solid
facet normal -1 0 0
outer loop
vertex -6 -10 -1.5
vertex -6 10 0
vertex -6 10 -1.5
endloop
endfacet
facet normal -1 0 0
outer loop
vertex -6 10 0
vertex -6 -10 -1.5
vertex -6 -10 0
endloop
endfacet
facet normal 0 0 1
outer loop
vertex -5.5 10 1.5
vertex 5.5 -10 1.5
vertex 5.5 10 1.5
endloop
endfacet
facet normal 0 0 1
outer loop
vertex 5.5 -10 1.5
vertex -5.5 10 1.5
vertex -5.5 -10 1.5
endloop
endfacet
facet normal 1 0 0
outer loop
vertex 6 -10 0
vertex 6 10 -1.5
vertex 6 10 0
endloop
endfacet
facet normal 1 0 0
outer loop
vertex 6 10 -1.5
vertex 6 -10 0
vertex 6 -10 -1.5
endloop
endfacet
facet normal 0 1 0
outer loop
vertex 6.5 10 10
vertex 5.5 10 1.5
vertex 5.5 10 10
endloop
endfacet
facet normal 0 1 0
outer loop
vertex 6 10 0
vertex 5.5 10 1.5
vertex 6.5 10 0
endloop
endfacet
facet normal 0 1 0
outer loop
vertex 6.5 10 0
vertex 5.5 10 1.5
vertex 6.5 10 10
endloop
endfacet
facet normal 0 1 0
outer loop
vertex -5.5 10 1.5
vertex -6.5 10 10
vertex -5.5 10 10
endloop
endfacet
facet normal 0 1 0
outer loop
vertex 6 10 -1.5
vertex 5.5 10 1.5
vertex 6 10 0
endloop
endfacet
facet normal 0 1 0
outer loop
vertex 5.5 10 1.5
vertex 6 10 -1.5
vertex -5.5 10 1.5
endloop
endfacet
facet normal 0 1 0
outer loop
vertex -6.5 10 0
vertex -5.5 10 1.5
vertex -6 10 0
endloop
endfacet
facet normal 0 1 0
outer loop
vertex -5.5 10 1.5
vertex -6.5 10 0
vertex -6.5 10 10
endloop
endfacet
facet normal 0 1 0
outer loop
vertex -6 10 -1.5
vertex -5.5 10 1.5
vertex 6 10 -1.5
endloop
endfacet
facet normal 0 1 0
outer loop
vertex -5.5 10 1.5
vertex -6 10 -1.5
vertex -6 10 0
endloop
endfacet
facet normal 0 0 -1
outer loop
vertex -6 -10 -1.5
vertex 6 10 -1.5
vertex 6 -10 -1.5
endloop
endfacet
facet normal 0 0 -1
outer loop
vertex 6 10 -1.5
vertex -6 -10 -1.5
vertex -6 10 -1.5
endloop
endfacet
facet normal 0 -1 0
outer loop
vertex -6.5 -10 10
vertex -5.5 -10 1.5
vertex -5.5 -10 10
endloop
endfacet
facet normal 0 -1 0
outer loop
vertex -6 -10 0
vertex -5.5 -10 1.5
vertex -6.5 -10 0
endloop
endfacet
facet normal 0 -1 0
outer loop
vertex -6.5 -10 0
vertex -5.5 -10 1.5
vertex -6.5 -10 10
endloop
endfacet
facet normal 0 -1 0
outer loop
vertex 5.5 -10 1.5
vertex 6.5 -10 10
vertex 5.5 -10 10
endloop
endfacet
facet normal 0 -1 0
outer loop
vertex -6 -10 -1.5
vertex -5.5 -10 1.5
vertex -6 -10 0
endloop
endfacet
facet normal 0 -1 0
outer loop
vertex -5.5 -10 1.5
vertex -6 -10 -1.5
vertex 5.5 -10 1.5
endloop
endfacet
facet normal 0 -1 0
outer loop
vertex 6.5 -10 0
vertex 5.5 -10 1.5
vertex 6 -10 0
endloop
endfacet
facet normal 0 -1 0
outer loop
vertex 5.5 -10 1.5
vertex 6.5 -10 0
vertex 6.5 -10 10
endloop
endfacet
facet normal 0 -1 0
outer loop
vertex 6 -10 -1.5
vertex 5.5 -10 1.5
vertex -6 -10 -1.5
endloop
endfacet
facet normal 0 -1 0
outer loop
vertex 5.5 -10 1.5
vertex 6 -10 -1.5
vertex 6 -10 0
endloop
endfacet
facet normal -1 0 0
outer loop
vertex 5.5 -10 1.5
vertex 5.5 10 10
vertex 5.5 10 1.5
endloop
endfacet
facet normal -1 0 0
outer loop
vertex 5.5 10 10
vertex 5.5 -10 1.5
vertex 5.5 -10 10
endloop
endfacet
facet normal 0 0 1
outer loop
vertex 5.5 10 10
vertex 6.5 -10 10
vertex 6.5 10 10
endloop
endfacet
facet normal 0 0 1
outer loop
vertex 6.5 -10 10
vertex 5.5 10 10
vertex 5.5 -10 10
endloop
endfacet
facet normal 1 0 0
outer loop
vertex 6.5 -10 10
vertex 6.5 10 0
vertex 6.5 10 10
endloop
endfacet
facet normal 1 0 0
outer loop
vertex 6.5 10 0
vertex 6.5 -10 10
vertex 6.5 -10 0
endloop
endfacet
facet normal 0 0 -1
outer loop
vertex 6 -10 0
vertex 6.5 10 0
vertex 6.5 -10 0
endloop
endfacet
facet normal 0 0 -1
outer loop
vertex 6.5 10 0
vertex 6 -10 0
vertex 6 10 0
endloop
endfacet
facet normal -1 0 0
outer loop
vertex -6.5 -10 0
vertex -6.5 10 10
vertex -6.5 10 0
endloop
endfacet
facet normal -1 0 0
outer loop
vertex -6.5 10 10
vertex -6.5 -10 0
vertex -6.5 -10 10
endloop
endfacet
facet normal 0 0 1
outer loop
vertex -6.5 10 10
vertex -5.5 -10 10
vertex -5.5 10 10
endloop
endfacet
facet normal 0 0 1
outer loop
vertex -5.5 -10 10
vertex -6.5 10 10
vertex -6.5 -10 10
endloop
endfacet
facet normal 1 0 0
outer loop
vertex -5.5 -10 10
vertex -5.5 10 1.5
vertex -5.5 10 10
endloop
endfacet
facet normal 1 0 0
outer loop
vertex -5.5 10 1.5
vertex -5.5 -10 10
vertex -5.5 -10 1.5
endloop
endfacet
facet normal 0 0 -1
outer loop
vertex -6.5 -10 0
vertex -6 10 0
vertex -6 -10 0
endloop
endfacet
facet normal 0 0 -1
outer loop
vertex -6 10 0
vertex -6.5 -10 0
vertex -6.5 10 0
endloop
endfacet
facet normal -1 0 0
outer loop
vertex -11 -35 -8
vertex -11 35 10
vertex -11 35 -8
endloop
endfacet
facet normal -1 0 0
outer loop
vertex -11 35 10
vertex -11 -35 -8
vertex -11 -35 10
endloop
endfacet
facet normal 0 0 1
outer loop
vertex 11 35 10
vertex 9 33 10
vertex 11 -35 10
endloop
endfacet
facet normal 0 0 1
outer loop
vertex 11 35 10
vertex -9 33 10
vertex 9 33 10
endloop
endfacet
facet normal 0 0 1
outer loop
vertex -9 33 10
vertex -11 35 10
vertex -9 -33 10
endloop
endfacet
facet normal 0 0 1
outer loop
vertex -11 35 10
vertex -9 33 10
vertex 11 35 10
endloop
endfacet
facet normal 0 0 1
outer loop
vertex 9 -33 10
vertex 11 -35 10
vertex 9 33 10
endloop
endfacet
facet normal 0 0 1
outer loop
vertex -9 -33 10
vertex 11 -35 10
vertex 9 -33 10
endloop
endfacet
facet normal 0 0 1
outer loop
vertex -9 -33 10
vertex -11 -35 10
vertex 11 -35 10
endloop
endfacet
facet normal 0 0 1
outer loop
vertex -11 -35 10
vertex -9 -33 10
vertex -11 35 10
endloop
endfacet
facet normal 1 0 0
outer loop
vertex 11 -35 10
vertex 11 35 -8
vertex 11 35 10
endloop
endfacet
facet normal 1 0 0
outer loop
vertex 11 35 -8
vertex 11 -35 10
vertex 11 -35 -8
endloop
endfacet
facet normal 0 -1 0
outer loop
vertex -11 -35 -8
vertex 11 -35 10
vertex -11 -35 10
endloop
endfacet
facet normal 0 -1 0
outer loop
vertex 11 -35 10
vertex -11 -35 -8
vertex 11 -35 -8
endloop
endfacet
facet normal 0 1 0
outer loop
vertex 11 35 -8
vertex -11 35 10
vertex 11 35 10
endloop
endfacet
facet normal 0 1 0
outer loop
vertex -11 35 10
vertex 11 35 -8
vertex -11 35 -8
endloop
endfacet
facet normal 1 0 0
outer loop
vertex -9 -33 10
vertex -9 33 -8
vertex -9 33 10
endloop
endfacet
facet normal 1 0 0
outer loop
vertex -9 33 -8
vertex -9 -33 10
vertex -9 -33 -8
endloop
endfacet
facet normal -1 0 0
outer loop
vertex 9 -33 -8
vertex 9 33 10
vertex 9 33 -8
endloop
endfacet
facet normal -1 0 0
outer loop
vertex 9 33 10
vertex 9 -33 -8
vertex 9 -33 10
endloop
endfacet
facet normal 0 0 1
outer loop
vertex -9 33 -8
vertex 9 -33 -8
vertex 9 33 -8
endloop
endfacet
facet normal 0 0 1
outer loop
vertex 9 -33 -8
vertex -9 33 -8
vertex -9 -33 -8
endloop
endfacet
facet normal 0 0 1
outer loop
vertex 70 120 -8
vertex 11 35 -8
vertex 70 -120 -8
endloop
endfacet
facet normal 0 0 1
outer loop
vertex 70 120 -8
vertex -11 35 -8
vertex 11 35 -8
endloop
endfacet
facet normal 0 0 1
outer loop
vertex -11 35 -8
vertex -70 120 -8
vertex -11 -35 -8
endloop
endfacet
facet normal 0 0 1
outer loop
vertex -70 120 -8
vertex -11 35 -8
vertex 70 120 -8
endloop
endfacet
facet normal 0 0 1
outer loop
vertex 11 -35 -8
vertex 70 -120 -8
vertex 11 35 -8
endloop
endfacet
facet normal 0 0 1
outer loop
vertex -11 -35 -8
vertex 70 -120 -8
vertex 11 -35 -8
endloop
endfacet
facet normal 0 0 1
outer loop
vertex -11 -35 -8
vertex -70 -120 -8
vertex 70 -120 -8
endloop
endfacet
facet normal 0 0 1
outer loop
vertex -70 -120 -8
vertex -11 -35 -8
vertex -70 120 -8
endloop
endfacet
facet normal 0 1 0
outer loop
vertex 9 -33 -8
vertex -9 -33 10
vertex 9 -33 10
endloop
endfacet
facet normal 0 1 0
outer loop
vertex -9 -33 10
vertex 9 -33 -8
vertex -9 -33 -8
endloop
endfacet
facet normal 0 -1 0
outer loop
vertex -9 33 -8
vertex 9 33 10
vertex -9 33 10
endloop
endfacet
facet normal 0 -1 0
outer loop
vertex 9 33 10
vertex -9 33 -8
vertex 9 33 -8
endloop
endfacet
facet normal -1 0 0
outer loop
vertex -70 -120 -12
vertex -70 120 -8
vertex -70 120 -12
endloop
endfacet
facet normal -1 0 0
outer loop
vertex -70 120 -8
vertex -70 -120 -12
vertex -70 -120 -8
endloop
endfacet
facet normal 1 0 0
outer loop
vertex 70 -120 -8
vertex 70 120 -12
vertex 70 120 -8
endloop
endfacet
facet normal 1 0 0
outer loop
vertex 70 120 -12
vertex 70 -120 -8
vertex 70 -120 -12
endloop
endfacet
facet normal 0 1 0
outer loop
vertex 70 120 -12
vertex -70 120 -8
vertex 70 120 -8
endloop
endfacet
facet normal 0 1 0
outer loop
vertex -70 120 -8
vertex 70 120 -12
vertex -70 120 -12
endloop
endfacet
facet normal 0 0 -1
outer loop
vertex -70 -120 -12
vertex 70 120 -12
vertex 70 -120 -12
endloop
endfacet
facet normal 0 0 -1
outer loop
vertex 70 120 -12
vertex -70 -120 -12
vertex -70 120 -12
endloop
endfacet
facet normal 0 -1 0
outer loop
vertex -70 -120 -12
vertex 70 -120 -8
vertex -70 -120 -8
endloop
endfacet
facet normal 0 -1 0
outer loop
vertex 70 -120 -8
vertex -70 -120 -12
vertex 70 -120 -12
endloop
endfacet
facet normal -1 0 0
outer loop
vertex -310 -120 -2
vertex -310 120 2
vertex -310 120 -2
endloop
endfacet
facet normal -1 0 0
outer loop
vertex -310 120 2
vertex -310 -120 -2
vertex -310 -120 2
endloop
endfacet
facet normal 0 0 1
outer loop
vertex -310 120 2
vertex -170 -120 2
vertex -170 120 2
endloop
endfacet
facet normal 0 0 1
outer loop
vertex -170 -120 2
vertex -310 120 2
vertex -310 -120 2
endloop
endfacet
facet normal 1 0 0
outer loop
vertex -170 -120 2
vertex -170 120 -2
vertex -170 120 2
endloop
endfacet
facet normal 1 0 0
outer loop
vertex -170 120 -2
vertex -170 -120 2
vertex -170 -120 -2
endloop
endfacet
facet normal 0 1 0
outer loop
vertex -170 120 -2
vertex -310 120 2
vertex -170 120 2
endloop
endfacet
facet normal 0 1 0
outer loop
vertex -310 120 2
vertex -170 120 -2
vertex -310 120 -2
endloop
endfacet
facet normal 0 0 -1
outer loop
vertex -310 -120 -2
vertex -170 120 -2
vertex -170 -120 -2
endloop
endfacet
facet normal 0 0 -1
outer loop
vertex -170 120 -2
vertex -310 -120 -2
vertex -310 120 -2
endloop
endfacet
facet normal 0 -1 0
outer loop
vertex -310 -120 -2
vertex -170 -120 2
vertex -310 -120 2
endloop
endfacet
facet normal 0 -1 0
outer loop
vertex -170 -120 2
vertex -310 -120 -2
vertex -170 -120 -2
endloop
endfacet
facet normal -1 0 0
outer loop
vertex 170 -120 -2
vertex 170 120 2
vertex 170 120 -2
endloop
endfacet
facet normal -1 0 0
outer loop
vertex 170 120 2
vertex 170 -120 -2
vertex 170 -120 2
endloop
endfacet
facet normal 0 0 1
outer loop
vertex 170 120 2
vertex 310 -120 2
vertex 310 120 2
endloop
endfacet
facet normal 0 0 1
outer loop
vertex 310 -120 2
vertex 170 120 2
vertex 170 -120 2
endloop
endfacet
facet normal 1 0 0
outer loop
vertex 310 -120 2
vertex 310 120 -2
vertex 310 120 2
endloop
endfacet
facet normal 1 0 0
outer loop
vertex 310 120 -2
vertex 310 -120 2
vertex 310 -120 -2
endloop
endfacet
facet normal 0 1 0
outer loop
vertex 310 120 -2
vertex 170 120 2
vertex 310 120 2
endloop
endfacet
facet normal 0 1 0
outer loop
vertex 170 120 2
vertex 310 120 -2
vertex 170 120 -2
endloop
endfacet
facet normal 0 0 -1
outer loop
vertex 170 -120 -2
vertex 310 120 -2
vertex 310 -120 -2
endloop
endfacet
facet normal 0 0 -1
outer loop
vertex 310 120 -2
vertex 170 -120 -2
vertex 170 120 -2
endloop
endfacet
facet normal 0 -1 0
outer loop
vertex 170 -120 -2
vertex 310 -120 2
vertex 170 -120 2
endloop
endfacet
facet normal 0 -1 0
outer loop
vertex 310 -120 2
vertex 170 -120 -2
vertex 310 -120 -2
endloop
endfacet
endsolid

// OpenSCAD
$fn = 64;
union() {
  translate([0.0, 0.0, -10.0])
  rotate([0.0, 0.0, 0.0])
  scale([1.0, 1.0, 1.0])
  {
    cube([140, 240, 4], center=true);
  }
}

union() {
  translate([-240.0, 0.0, 0.0])
  rotate([0.0, 0.0, 0.0])
  scale([1.0, 1.0, 1.0])
  {
    cube([140, 240, 4], center=true);
  }
}

union() {
  translate([240.0, 0.0, 0.0])
  rotate([0.0, 0.0, 0.0])
  scale([1.0, 1.0, 1.0])
  {
    cube([140, 240, 4], center=true);
  }
}

union() {
  translate([0.0, 0.0, 0.0])
  rotate([0.0, 0.0, 0.0])
  scale([1.0, 1.0, 1.0])
  {
    cube([12, 20, 3], center=true);
    translate([6.0, 0, 5.0]) cube([1, 20, 10.0], center=true);
    translate([-6.0, 0, 5.0]) cube([1, 20, 10.0], center=true);
  }
}

union() {
  translate([0.0, 0.0, 0.0])
  rotate([0.0, 0.0, 0.0])
  scale([1.0, 1.0, 1.0])
  {
    cube([12, 20, 3], center=true);
    translate([6.0, 0, 5.0]) cube([1, 20, 10.0], center=true);
    translate([-6.0, 0, 5.0]) cube([1, 20, 10.0], center=true);
  }
}

union() {
  translate([0.0, 0.0, 0.0])
  rotate([0.0, 0.0, 0.0])
  scale([1.0, 1.0, 1.0])
  {
    cube([12, 20, 3], center=true);
    translate([6.0, 0, 5.0]) cube([1, 20, 10.0], center=true);
    translate([-6.0, 0, 5.0]) cube([1, 20, 10.0], center=true);
  }
}

union() {
  translate([0.0, 0.0, 0.0])
  rotate([0.0, 0.0, 0.0])
  scale([1.0, 1.0, 1.0])
  {
    cube([12, 20, 3], center=true);
    translate([6.0, 0, 5.0]) cube([1, 20, 10.0], center=true);
    translate([-6.0, 0, 5.0]) cube([1, 20, 10.0], center=true);
  }
}

union() {
  translate([0.0, 0.0, 0.0])
  rotate([0.0, 0.0, 0.0])
  scale([1.0, 1.0, 1.0])
  {
    difference() {
      cube([22, 70, 20], center=true);
      translate([0, 0, 2]) cube([18, 66, 20], center=true);
    }
  }
}

union() {
  translate([0.0, 0.0, 0.0])
  rotate([0.0, 0.0, 0.0])
  scale([1.0, 1.0, 1.0])
  {
    difference() {
      cube([22, 70, 20], center=true);
      translate([0, 0, 2]) cube([18, 66, 20], center=true);
    }
  }
}
